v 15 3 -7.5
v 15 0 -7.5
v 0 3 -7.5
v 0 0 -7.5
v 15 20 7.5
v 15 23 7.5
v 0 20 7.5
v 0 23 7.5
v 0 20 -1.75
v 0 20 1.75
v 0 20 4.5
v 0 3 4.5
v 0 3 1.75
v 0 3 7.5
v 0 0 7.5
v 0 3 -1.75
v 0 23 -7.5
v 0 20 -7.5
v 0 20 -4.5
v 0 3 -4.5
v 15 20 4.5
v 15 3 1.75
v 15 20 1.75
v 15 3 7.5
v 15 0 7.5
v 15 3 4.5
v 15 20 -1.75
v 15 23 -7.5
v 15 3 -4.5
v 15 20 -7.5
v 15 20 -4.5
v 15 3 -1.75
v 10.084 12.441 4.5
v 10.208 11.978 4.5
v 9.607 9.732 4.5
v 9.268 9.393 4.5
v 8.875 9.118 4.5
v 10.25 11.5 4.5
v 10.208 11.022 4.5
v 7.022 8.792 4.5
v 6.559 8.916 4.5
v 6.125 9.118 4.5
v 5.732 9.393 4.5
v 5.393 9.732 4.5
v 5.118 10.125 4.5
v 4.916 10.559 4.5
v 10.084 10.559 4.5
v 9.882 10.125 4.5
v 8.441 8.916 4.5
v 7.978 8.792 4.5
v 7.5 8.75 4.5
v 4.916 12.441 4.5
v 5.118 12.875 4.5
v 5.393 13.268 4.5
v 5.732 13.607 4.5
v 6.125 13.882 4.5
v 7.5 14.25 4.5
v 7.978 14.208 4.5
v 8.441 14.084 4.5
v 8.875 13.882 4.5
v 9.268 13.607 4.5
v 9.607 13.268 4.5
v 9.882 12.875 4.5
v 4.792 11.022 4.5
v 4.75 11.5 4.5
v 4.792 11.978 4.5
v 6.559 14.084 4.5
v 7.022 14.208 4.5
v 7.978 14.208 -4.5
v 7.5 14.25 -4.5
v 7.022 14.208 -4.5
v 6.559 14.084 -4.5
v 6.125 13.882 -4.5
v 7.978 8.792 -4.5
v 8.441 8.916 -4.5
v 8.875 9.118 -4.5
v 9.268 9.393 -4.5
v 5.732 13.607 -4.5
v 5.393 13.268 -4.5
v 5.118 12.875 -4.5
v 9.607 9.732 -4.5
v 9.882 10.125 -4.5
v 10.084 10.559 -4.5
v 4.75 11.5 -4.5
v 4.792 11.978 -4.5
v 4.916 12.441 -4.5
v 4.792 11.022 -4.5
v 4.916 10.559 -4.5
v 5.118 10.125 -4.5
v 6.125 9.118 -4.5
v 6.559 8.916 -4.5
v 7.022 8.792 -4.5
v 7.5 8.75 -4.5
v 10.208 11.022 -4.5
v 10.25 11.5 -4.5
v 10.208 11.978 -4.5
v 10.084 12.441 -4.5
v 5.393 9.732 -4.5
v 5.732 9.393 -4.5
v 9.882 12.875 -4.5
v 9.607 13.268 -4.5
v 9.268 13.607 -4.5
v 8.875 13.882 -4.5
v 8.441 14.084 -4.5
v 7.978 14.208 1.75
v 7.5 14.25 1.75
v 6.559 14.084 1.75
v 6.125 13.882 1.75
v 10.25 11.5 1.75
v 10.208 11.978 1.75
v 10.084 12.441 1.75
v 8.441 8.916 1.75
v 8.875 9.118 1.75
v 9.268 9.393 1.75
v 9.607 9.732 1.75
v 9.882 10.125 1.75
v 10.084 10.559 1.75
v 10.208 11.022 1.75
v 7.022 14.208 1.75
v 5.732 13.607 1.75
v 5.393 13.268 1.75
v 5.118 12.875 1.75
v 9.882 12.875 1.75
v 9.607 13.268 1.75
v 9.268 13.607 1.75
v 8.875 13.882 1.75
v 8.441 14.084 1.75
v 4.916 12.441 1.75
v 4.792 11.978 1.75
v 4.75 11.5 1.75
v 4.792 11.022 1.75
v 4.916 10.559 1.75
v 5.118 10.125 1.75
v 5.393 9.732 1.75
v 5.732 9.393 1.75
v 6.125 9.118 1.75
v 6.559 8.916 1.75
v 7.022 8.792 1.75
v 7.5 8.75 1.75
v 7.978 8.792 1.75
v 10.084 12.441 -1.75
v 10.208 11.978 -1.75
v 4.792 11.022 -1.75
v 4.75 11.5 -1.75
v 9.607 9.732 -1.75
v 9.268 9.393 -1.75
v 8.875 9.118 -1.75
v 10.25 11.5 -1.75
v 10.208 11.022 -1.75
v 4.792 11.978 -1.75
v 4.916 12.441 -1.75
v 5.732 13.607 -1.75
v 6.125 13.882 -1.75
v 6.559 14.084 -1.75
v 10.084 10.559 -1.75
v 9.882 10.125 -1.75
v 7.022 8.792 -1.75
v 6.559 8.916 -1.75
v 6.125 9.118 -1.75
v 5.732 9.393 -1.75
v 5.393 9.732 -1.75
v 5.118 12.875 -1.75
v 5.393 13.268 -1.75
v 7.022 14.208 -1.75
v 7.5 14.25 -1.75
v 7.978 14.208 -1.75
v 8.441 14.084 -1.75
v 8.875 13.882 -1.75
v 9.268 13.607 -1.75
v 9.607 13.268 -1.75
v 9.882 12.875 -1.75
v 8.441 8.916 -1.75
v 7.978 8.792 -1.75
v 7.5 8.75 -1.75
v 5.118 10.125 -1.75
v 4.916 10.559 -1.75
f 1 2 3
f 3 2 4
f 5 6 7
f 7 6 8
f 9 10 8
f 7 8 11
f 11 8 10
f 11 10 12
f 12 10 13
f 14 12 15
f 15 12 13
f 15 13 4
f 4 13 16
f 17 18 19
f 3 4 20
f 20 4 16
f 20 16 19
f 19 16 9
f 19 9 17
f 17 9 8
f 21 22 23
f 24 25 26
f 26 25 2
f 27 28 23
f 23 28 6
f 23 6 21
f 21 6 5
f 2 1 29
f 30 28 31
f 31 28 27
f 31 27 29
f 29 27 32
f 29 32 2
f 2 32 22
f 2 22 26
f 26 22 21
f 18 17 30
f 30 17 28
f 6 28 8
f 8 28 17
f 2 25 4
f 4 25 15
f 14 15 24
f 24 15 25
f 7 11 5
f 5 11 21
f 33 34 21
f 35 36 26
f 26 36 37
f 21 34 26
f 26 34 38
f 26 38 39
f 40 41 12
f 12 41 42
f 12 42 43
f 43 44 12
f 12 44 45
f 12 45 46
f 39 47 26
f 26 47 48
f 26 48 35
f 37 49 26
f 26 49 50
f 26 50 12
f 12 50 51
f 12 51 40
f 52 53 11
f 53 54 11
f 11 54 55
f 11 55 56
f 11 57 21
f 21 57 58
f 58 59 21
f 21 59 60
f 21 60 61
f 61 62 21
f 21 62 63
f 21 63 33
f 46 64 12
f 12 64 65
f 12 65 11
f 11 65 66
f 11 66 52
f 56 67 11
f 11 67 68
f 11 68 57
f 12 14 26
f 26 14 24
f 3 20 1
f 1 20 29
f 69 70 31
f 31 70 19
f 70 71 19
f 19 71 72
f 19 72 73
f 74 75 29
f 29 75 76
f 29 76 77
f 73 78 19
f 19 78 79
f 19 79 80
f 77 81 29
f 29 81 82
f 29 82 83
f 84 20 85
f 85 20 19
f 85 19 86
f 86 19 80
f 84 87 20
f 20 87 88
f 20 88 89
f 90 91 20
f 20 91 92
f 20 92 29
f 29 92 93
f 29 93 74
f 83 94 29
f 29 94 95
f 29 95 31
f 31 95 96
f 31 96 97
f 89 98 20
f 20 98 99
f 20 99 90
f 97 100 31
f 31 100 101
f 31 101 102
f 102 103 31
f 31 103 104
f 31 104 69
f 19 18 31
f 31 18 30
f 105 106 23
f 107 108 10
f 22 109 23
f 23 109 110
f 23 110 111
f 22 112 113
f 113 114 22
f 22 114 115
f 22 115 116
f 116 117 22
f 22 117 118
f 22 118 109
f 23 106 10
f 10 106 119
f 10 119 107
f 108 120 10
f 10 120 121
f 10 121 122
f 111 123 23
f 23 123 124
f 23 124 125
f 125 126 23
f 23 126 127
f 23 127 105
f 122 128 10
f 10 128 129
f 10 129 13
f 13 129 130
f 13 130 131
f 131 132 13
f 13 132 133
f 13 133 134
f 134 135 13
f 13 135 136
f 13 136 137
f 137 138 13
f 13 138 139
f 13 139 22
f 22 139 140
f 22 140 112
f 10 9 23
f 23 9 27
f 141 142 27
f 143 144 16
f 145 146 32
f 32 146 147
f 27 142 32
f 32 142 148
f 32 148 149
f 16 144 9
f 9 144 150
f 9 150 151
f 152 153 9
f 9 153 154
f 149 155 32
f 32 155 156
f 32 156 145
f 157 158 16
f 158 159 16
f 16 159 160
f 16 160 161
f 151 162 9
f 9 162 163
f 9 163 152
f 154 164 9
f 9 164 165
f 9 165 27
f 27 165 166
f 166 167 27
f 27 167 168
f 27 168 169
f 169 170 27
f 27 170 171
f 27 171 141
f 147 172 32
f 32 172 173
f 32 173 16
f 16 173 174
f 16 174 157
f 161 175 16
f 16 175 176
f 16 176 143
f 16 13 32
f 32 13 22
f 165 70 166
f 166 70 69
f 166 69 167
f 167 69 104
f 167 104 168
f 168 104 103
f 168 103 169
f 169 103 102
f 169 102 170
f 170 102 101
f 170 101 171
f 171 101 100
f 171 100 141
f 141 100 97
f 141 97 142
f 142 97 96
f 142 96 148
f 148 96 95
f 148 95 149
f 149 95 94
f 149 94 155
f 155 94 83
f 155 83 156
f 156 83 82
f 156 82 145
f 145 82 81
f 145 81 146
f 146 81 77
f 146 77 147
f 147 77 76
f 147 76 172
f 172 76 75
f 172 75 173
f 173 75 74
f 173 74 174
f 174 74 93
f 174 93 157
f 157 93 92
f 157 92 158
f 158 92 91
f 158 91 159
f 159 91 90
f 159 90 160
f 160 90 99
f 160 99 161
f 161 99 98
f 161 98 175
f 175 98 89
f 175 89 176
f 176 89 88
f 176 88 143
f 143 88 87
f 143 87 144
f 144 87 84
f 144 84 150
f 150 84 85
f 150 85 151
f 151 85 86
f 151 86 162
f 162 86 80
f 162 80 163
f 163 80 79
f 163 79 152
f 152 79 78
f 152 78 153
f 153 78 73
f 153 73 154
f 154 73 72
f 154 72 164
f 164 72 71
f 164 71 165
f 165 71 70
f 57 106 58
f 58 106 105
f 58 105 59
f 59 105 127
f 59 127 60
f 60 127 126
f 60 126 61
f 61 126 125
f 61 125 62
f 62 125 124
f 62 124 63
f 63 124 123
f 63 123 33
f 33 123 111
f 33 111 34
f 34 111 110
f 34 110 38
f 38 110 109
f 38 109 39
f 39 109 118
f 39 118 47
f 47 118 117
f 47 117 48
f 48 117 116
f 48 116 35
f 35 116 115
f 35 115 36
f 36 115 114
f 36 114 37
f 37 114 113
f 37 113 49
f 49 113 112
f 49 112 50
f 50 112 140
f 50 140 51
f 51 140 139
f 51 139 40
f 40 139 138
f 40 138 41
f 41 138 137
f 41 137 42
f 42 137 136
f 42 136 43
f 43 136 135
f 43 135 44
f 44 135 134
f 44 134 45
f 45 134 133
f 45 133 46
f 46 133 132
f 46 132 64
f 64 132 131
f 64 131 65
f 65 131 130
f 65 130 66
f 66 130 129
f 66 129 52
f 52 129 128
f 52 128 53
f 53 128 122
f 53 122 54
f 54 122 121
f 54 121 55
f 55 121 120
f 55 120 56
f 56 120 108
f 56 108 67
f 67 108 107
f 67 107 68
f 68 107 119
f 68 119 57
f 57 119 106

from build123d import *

# Parameters (mm, degrees)
SKETCH1_W           = 15
SKETCH1_H           = 7.5
BOSS_EXTRUDE1_DEPTH = 23
SKETCH10_W          = 3
SKETCH10_H          = 17
SKETCH10_W_2        = 3.5
CUT_EXTRUDE5_DEPTH  = 29.464890655
SKETCH11_R          = 2.75
CUT_EXTRUDE6_DEPTH  = 30.966648128


with BuildPart() as part:
    # Sketch1 → Boss-Extrude1 (new body)
    with BuildSketch(Plane(origin=(0, 0, 0), x_dir=(1, 0, 0), z_dir=(0, 1, 0))):
        with Locations((7.5, 3.75)):
            Rectangle(SKETCH1_W, SKETCH1_H)
    extrude(amount=BOSS_EXTRUDE1_DEPTH)

    # Mirror1: part across plane


with BuildPart() as part_1:
    add(part.part)
    add(part.part.mirror(Plane(origin=(0, 23, 0), x_dir=(1, 0, 0), z_dir=(0, 0, -1))))

    # Sketch10 → Cut-Extrude5 (cut, through all)
    with BuildSketch(Plane(origin=(15, 0, 0), x_dir=(0, 0, -1), z_dir=(1, 0, 0))):
        with Locations((-6, 11.5)):
            Rectangle(SKETCH10_W, SKETCH10_H)
        with Locations((6, 11.5)):
            Rectangle(SKETCH10_W, SKETCH10_H)
        with Locations((0, 11.5)):
            Rectangle(SKETCH10_W_2, SKETCH10_H)
    extrude(amount=-CUT_EXTRUDE5_DEPTH, mode=Mode.SUBTRACT)

    # Sketch11 → Cut-Extrude6 (cut, through all)
    with BuildSketch(Plane(origin=(0, 0, -4.5), x_dir=(-1, 0, 0), z_dir=(0, 0, -1))):
        with Locations(Location((-7.5, 11.5, 0), (0, 0, 90))):
            Circle(SKETCH11_R)
    extrude(amount=-CUT_EXTRUDE6_DEPTH, mode=Mode.SUBTRACT)


solid = part_1.part
